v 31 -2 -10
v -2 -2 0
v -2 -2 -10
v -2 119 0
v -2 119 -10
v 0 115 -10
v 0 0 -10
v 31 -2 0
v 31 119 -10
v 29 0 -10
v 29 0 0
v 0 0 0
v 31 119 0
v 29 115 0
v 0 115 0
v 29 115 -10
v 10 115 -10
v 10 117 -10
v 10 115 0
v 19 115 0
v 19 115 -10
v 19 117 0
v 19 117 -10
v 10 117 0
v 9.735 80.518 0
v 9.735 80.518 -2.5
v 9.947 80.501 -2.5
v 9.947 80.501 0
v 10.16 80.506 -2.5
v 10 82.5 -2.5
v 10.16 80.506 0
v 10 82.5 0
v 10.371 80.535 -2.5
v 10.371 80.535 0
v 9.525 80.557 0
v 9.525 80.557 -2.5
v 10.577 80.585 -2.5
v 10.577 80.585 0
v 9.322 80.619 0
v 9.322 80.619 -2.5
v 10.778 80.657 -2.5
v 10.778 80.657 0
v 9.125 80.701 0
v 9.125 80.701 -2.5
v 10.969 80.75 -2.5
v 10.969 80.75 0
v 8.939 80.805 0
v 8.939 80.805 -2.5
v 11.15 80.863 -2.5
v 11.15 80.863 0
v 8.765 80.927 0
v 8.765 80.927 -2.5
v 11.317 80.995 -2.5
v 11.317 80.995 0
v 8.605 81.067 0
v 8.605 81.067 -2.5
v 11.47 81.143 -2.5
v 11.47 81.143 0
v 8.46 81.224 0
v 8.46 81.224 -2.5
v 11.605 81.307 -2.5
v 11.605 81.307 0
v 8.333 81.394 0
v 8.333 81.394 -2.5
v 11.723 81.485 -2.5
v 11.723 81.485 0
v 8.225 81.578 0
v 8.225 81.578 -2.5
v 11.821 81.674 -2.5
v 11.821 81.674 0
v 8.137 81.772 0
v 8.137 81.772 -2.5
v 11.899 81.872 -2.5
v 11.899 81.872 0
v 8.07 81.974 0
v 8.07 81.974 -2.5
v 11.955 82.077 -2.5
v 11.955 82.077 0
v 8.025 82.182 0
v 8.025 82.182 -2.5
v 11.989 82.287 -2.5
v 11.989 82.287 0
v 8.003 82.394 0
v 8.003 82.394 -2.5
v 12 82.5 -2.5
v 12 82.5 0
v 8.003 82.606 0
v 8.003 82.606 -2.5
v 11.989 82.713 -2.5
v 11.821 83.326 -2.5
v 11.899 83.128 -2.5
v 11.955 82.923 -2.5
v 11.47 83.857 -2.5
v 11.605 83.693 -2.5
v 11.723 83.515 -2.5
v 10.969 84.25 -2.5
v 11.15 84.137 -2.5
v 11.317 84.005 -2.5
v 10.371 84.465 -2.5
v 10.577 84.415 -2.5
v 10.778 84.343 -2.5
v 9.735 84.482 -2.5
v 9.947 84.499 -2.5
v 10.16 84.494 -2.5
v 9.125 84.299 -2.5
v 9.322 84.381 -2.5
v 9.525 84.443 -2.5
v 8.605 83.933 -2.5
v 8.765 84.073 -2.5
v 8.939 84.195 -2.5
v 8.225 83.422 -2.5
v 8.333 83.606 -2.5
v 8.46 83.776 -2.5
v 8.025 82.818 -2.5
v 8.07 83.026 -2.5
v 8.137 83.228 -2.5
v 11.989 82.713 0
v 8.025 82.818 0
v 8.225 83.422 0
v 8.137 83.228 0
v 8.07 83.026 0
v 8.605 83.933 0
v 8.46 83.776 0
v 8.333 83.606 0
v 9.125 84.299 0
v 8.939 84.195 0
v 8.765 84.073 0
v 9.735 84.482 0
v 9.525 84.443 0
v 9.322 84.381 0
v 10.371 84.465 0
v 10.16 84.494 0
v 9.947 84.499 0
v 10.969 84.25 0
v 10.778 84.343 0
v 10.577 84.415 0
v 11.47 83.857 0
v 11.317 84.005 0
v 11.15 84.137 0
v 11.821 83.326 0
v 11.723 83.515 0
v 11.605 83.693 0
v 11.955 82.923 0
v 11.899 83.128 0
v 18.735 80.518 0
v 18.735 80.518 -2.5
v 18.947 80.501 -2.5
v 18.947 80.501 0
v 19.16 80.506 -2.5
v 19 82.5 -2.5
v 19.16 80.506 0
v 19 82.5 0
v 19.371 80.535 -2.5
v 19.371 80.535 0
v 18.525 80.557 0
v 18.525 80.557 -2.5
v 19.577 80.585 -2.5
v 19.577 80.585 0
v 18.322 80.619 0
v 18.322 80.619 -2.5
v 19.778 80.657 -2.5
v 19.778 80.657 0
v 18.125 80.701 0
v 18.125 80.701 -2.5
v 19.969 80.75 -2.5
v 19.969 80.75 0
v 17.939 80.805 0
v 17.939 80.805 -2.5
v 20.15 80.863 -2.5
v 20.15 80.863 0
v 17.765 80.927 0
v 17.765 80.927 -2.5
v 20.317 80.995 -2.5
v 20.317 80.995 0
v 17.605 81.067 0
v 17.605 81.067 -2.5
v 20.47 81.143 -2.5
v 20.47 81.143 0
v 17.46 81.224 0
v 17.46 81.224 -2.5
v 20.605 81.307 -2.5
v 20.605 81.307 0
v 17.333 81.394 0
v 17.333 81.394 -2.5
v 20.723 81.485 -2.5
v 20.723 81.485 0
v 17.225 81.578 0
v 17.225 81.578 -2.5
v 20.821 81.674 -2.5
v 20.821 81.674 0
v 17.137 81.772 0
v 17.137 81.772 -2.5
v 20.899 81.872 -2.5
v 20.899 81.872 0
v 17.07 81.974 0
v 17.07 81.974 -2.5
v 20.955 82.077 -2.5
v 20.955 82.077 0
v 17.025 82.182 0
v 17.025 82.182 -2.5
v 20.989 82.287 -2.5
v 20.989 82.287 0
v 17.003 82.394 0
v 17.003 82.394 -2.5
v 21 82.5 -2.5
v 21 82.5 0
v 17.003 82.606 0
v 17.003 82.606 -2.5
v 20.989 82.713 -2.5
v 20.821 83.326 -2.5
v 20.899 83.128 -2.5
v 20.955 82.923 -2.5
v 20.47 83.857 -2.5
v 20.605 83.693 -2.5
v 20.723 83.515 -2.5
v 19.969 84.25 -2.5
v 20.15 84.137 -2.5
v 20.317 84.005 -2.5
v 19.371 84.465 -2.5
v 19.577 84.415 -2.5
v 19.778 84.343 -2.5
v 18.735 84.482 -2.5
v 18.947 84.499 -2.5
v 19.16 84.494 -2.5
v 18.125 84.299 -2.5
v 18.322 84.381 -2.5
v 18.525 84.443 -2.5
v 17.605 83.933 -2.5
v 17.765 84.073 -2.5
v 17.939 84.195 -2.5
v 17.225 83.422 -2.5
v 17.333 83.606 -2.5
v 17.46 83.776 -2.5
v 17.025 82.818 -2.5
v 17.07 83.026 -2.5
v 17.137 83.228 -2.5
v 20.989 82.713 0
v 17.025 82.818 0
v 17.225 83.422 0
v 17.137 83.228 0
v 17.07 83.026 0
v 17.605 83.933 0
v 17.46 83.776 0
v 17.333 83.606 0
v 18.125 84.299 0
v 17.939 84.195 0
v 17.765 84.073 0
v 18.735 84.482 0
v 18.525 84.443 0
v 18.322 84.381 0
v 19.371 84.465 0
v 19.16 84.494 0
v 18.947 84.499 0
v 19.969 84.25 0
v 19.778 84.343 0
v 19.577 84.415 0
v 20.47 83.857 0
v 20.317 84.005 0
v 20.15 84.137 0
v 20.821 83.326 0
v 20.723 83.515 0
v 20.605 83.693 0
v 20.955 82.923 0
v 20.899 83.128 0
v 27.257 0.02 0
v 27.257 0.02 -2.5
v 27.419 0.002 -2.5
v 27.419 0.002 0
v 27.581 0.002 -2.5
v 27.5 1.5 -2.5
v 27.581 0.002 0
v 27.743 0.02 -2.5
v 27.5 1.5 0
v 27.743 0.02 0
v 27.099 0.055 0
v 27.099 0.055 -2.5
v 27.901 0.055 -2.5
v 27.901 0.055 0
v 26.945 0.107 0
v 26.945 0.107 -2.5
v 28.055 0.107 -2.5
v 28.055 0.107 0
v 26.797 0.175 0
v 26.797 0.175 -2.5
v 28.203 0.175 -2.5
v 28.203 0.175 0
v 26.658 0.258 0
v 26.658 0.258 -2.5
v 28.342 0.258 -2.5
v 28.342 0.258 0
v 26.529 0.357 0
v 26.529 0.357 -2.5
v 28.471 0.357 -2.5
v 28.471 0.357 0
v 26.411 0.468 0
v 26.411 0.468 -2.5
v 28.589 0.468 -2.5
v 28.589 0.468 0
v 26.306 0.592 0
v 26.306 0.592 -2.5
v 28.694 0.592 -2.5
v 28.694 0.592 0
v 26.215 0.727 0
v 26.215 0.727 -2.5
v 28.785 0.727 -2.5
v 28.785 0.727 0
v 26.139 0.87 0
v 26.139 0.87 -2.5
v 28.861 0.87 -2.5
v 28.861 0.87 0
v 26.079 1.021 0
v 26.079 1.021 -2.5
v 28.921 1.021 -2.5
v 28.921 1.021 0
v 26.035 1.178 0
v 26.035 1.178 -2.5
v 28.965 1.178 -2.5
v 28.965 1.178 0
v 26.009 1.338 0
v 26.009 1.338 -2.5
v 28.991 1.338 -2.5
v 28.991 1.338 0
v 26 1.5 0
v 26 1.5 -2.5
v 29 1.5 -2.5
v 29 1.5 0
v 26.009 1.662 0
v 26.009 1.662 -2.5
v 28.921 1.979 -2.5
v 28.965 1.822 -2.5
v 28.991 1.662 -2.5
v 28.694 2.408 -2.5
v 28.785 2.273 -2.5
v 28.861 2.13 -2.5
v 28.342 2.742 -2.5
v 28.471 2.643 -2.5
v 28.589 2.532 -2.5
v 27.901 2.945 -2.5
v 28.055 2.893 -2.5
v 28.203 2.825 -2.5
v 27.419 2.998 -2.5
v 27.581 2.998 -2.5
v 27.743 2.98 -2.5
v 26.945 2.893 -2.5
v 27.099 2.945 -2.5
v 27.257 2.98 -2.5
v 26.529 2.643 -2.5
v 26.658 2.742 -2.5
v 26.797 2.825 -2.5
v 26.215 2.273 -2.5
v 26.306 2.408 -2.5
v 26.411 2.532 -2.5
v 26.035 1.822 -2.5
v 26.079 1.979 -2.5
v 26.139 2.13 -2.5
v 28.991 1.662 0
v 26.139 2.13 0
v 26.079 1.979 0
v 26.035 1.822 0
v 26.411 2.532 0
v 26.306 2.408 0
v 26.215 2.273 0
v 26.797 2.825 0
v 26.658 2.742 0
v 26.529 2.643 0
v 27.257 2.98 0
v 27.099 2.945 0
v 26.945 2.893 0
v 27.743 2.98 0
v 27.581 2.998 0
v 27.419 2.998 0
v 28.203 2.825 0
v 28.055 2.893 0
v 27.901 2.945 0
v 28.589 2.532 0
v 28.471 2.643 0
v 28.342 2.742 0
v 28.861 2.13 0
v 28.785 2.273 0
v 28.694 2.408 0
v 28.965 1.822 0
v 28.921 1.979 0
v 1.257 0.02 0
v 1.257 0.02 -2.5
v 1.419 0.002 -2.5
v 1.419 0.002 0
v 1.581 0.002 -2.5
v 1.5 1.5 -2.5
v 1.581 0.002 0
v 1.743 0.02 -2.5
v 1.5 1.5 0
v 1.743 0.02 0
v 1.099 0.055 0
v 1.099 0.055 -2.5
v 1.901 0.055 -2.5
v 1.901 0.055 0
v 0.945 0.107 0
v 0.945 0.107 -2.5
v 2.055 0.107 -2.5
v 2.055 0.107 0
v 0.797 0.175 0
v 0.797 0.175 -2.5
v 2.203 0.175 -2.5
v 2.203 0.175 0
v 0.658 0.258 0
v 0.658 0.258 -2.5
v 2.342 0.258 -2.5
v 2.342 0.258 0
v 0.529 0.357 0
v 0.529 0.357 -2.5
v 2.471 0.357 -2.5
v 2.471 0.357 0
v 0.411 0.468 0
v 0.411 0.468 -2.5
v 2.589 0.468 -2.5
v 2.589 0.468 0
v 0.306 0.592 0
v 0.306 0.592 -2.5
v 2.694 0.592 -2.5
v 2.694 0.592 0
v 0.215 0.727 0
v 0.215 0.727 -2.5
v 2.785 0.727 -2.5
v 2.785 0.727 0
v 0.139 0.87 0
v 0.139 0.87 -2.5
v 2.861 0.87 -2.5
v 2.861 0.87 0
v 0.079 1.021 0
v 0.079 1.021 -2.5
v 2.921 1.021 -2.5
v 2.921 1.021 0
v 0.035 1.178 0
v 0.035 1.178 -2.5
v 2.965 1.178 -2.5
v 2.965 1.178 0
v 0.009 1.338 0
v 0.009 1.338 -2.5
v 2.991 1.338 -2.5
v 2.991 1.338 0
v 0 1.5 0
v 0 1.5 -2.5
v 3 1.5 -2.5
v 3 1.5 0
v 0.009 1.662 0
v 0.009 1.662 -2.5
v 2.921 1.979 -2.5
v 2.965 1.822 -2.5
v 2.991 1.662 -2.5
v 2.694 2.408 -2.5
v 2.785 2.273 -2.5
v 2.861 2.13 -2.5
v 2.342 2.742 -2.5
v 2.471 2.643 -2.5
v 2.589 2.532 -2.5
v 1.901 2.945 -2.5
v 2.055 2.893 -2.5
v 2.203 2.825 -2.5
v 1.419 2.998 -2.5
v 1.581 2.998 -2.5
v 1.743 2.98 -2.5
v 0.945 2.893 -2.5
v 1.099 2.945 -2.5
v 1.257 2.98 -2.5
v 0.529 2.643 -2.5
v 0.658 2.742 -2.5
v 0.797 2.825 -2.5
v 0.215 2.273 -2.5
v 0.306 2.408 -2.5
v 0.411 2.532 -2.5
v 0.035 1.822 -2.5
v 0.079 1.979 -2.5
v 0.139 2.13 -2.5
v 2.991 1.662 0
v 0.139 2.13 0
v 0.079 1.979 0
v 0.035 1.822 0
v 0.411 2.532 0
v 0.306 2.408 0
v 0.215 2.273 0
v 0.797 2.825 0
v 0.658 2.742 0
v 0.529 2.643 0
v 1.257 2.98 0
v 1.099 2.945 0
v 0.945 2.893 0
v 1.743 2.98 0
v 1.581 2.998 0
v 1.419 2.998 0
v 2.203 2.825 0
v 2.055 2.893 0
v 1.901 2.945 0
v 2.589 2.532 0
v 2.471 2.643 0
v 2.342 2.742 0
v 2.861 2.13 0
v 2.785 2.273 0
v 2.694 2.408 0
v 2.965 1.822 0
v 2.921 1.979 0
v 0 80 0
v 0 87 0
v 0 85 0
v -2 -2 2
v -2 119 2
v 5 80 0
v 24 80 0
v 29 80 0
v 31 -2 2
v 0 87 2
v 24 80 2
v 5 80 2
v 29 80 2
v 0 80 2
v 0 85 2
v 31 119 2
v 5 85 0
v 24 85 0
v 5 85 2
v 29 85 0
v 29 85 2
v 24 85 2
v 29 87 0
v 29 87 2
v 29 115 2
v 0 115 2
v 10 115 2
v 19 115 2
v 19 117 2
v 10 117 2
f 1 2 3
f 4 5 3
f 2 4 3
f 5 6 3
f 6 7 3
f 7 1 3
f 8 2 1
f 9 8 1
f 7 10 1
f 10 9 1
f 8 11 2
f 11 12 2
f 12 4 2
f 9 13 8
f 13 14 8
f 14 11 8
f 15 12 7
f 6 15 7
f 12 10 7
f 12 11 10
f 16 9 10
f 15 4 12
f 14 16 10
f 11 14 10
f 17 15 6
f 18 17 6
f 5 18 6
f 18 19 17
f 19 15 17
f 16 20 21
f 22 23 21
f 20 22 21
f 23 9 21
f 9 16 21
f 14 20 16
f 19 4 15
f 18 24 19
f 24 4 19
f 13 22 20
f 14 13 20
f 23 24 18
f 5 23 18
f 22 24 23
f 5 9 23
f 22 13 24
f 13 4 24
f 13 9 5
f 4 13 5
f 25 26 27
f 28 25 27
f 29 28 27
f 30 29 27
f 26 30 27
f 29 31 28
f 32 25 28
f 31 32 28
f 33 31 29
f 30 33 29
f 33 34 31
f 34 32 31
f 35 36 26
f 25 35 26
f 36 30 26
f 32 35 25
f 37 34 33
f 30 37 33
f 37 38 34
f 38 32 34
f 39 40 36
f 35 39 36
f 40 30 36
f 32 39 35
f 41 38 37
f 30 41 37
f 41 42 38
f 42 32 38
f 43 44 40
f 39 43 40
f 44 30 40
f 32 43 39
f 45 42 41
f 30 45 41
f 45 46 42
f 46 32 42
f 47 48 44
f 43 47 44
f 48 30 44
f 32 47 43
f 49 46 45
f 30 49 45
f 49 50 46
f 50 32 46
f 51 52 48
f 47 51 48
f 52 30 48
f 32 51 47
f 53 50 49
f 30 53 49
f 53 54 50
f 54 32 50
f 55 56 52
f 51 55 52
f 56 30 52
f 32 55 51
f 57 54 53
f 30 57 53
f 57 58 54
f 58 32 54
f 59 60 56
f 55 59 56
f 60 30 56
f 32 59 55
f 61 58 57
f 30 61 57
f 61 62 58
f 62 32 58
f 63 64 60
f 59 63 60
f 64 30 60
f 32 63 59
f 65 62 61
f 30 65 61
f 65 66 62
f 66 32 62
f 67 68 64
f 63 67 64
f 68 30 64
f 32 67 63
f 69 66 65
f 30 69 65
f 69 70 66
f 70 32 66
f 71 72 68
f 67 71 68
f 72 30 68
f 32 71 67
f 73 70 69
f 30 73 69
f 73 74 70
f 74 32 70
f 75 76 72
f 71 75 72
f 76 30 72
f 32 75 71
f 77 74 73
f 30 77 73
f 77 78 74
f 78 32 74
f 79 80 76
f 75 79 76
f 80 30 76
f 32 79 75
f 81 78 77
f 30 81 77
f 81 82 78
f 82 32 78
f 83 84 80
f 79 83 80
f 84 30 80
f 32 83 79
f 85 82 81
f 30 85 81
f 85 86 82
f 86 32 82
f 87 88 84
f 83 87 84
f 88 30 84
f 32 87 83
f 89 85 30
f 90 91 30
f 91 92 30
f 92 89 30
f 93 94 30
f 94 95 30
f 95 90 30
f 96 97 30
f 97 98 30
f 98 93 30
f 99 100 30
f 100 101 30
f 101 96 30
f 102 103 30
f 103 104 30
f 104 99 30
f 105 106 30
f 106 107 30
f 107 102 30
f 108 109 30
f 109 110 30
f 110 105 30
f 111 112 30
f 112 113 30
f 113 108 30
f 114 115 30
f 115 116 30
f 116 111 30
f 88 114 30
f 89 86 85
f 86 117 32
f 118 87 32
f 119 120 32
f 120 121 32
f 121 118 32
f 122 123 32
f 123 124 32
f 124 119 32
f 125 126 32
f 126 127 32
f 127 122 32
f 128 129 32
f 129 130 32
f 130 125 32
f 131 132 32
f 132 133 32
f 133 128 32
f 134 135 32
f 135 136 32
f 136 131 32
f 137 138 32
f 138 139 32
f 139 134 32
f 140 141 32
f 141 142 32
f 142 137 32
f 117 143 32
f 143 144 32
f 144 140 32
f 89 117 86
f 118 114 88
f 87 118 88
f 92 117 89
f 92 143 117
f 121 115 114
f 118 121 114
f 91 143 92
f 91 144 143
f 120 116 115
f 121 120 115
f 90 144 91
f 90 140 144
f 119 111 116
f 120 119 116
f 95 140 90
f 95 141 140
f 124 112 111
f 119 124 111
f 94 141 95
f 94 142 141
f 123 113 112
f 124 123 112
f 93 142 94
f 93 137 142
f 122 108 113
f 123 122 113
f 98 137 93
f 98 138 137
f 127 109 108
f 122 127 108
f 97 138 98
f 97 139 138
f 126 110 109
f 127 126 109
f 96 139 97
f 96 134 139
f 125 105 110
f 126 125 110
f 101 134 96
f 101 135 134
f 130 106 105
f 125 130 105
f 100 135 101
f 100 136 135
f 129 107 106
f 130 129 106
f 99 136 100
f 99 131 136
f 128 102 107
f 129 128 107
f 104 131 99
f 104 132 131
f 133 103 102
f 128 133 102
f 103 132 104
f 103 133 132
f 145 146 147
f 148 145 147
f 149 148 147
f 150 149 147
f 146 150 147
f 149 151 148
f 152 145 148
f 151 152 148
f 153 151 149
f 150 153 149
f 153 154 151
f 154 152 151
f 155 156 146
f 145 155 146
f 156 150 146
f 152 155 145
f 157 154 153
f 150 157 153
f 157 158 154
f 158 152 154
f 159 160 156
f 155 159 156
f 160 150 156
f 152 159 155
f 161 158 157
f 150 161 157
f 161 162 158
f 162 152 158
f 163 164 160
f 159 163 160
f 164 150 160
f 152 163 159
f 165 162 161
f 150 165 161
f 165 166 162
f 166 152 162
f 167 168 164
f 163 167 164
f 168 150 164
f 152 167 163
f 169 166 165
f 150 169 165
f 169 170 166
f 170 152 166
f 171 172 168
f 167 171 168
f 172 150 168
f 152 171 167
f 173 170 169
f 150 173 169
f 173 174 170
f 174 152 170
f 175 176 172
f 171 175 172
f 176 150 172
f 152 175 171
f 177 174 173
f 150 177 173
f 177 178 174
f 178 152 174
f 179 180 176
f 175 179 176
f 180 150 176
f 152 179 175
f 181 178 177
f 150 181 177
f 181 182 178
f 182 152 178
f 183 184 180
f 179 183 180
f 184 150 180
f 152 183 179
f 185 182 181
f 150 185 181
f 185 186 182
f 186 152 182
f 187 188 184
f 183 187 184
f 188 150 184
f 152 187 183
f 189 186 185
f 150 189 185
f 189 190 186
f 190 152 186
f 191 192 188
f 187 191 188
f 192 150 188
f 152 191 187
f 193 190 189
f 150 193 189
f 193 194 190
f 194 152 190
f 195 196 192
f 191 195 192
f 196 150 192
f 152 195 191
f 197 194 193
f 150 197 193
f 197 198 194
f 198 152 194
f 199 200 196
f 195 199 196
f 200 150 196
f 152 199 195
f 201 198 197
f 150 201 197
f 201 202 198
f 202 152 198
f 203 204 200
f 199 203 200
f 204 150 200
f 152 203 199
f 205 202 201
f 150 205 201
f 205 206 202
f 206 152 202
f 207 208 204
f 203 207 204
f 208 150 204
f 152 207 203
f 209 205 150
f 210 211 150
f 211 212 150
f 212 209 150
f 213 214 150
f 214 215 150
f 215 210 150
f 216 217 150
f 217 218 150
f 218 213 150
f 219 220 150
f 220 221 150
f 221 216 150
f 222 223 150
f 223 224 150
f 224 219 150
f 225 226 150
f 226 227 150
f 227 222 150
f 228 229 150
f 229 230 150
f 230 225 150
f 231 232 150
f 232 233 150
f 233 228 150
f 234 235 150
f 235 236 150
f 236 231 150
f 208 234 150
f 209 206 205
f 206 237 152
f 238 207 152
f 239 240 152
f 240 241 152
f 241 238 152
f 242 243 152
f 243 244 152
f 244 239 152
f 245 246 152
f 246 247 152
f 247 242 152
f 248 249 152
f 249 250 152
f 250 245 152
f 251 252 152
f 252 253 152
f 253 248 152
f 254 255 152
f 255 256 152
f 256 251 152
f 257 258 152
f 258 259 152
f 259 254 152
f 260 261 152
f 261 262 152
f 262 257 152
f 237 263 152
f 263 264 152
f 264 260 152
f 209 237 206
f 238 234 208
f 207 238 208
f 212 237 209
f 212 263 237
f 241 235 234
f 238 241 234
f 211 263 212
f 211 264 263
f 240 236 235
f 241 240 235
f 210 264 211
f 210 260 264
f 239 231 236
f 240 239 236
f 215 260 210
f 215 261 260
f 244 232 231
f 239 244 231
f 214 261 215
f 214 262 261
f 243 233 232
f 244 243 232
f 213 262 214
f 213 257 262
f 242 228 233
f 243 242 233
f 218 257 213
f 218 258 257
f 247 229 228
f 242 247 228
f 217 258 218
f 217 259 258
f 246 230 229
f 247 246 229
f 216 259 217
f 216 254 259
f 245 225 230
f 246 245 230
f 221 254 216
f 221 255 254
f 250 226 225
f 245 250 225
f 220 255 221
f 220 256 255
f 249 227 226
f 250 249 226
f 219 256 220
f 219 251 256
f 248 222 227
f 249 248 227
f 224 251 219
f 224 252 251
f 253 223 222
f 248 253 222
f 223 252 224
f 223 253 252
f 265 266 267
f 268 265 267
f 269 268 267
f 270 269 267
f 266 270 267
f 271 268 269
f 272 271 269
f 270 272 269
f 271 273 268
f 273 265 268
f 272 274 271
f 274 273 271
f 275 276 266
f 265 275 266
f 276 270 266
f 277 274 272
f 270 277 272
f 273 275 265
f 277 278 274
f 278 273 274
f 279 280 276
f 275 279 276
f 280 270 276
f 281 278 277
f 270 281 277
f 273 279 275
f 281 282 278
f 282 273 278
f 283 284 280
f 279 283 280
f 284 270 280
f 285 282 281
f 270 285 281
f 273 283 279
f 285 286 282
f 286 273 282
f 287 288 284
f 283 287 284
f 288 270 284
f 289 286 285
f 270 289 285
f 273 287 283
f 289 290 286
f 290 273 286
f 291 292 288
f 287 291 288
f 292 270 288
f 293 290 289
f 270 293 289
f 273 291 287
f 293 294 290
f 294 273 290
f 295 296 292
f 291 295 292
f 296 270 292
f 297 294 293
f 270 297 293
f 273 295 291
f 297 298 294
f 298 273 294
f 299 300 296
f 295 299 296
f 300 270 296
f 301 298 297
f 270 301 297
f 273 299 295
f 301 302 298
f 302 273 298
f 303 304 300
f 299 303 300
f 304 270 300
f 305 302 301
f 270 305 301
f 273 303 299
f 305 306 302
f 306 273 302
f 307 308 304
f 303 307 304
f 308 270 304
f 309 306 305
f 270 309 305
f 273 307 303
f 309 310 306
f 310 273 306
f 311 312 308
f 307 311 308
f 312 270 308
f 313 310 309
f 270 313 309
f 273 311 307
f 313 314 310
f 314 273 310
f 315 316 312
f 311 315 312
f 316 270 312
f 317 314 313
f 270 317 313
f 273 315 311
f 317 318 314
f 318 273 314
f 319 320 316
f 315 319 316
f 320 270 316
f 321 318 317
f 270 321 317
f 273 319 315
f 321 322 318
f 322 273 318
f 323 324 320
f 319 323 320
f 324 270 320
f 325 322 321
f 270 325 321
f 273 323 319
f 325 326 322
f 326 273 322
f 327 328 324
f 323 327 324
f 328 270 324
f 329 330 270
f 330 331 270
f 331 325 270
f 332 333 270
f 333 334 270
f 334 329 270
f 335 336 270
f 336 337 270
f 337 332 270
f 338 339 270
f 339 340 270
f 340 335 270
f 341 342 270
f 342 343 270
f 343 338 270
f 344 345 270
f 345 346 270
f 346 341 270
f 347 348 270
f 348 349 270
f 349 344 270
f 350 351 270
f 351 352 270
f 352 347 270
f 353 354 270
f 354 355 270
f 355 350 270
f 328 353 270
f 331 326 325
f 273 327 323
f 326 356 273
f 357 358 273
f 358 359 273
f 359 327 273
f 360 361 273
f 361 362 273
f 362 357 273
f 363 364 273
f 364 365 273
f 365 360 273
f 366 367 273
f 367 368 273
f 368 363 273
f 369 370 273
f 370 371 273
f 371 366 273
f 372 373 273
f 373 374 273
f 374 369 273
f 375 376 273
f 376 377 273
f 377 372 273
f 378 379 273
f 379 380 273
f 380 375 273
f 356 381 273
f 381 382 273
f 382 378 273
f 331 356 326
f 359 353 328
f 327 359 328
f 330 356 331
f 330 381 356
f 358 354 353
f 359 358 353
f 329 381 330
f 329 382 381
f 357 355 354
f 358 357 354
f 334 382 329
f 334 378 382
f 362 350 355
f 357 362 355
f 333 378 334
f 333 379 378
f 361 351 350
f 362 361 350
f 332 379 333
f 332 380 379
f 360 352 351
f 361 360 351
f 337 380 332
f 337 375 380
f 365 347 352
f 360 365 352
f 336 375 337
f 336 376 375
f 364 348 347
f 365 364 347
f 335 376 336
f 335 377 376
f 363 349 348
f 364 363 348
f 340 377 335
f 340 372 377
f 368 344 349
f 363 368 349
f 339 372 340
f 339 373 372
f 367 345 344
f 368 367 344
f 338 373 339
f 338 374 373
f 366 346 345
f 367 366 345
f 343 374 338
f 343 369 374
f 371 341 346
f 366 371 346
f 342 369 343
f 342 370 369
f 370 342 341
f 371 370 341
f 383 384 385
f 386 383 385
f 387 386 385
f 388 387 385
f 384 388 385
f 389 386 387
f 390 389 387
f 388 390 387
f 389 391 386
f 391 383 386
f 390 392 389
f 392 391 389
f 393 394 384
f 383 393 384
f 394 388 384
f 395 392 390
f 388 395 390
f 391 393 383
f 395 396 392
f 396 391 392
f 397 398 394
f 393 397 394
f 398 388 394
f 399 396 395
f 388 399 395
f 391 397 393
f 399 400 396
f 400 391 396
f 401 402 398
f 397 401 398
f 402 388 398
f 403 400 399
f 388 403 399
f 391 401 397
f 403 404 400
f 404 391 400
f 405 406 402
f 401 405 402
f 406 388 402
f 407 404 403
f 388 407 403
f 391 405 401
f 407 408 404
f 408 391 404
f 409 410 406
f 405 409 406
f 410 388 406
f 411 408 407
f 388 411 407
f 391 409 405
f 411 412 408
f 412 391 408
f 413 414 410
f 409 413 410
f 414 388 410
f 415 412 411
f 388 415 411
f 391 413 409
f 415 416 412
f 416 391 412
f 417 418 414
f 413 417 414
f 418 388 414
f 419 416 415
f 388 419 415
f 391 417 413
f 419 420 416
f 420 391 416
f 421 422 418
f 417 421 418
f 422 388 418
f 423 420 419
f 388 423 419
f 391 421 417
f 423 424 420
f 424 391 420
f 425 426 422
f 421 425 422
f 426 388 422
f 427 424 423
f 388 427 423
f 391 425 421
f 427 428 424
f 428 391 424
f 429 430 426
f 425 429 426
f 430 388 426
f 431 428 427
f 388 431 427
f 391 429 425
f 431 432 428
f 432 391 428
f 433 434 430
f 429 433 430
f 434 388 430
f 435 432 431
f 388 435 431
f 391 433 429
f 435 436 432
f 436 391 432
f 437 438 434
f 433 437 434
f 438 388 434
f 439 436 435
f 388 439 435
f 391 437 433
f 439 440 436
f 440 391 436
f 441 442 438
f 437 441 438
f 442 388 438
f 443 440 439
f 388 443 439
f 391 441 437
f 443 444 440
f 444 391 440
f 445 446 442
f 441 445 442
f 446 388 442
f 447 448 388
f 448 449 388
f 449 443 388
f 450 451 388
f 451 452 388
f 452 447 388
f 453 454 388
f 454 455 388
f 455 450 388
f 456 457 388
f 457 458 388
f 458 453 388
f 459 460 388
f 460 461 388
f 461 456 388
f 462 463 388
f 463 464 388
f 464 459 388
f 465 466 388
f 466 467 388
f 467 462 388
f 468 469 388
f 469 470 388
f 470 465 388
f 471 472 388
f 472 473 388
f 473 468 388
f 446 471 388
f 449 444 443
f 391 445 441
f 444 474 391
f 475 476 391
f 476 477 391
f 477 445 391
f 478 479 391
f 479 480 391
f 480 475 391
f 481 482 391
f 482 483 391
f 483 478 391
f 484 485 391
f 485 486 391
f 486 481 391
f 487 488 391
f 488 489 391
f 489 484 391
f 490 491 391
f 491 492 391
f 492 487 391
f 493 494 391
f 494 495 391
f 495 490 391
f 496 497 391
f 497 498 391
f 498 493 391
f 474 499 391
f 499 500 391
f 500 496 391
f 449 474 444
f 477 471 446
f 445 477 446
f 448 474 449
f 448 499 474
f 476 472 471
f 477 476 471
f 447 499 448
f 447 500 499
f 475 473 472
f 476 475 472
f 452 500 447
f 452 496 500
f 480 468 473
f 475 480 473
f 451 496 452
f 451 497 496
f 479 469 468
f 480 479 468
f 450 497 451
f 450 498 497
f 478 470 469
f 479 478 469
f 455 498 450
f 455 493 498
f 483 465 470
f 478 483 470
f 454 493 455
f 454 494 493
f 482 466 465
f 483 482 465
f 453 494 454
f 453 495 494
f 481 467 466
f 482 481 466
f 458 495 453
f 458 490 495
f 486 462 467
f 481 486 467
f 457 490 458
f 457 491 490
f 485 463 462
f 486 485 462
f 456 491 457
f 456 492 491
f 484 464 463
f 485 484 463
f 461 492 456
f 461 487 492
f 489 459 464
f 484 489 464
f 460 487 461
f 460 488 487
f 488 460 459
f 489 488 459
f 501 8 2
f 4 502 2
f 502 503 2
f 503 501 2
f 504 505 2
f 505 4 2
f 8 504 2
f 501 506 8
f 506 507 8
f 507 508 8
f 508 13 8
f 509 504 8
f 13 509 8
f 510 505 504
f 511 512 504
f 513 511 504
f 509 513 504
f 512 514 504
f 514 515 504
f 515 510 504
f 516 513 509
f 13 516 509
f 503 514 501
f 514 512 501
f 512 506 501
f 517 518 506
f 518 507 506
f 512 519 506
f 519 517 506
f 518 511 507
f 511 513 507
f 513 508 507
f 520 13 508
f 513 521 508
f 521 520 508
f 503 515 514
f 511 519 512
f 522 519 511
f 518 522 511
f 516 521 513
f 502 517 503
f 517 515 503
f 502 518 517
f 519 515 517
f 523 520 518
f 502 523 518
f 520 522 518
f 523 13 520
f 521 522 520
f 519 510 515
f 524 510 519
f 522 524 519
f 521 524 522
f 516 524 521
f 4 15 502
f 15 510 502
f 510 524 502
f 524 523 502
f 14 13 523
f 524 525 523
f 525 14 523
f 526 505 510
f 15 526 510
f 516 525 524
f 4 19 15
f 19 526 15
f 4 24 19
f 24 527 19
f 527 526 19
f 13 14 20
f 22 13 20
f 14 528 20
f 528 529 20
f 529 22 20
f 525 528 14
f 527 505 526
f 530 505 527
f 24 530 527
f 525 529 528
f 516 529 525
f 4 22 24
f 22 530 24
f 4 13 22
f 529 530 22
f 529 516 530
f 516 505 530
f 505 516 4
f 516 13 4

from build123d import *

# Parameters (mm, degrees)
ESBO_O1_W                  = 33
ESBO_O1_H                  = 121
RESSALTO_EXTRUS_O1_DEPTH   = 10
ESBO_O1_4_R                = 1.5
RESSALTO_EXTRUS_O2_DEPTH   = 2.5
RESSALTO_EXTRUS_O2_2_DEPTH = 2.5
ESBO_O1_4_R_2              = 2
RESSALTO_EXTRUS_O2_3_DEPTH = 2.5
RESSALTO_EXTRUS_O2_4_DEPTH = 2.5
ESBO_O2_W                  = 33
ESBO_O2_H                  = 121
ESBO_O2_W_2                = 5
ESBO_O2_H_2                = 5
RESSALTO_EXTRUS_O8_DEPTH   = 2


with BuildPart() as part:
    # Esboço1 → Ressalto-extrusão1 (new body)
    with BuildSketch(Plane.XY):
        with Locations((14.5, 58.5)):
            Rectangle(ESBO_O1_W, ESBO_O1_H)
        Polygon((0, 0), (0, 115), (10, 115), (10, 117), (19, 117), (19, 115), (29, 115), (29, 0), align=None, mode=Mode.SUBTRACT)
    extrude(amount=-RESSALTO_EXTRUS_O1_DEPTH)


with BuildPart() as body_2:
    # Esboço1<4> → Ressalto-extrusão2 (new body)
    with BuildSketch(Plane.XY):
        with Locations((1.5, 1.5)):
            Circle(ESBO_O1_4_R)
    extrude(amount=-RESSALTO_EXTRUS_O2_DEPTH)


with BuildPart() as body_3:
    # Esboço1<4> → Ressalto-extrus_o2 2 (new body)
    with BuildSketch(Plane.XY):
        with Locations((27.5, 1.5)):
            Circle(ESBO_O1_4_R)
    extrude(amount=-RESSALTO_EXTRUS_O2_2_DEPTH)


with BuildPart() as body_4:
    # Esboço1<4> → Ressalto-extrus_o2 3 (new body)
    with BuildSketch(Plane.XY):
        with Locations((10, 82.5)):
            Circle(ESBO_O1_4_R_2)
    extrude(amount=-RESSALTO_EXTRUS_O2_3_DEPTH)


with BuildPart() as body_5:
    # Esboço1<4> → Ressalto-extrus_o2 4 (new body)
    with BuildSketch(Plane.XY):
        with Locations((19, 82.5)):
            Circle(ESBO_O1_4_R_2)
    extrude(amount=-RESSALTO_EXTRUS_O2_4_DEPTH)


with BuildPart() as body_6:
    # Esboço2 → Ressalto-extrusão8 (new body)
    with BuildSketch(Plane.XY):
        with Locations((14.5, 58.5)):
            Rectangle(ESBO_O2_W, ESBO_O2_H)
        with Locations((2.5, 82.5)):
            Rectangle(ESBO_O2_W_2, ESBO_O2_H_2, mode=Mode.SUBTRACT)
        with Locations((26.5, 82.5)):
            Rectangle(ESBO_O2_W_2, ESBO_O2_H_2, mode=Mode.SUBTRACT)
        Polygon((0, 115), (10, 115), (10, 117), (19, 117), (19, 115), (29, 115), (29, 87), (0, 87), align=None, mode=Mode.SUBTRACT)
    extrude(amount=RESSALTO_EXTRUS_O8_DEPTH)


solid = Compound([part.part, body_2.part, body_3.part, body_4.part, body_5.part, body_6.part])
